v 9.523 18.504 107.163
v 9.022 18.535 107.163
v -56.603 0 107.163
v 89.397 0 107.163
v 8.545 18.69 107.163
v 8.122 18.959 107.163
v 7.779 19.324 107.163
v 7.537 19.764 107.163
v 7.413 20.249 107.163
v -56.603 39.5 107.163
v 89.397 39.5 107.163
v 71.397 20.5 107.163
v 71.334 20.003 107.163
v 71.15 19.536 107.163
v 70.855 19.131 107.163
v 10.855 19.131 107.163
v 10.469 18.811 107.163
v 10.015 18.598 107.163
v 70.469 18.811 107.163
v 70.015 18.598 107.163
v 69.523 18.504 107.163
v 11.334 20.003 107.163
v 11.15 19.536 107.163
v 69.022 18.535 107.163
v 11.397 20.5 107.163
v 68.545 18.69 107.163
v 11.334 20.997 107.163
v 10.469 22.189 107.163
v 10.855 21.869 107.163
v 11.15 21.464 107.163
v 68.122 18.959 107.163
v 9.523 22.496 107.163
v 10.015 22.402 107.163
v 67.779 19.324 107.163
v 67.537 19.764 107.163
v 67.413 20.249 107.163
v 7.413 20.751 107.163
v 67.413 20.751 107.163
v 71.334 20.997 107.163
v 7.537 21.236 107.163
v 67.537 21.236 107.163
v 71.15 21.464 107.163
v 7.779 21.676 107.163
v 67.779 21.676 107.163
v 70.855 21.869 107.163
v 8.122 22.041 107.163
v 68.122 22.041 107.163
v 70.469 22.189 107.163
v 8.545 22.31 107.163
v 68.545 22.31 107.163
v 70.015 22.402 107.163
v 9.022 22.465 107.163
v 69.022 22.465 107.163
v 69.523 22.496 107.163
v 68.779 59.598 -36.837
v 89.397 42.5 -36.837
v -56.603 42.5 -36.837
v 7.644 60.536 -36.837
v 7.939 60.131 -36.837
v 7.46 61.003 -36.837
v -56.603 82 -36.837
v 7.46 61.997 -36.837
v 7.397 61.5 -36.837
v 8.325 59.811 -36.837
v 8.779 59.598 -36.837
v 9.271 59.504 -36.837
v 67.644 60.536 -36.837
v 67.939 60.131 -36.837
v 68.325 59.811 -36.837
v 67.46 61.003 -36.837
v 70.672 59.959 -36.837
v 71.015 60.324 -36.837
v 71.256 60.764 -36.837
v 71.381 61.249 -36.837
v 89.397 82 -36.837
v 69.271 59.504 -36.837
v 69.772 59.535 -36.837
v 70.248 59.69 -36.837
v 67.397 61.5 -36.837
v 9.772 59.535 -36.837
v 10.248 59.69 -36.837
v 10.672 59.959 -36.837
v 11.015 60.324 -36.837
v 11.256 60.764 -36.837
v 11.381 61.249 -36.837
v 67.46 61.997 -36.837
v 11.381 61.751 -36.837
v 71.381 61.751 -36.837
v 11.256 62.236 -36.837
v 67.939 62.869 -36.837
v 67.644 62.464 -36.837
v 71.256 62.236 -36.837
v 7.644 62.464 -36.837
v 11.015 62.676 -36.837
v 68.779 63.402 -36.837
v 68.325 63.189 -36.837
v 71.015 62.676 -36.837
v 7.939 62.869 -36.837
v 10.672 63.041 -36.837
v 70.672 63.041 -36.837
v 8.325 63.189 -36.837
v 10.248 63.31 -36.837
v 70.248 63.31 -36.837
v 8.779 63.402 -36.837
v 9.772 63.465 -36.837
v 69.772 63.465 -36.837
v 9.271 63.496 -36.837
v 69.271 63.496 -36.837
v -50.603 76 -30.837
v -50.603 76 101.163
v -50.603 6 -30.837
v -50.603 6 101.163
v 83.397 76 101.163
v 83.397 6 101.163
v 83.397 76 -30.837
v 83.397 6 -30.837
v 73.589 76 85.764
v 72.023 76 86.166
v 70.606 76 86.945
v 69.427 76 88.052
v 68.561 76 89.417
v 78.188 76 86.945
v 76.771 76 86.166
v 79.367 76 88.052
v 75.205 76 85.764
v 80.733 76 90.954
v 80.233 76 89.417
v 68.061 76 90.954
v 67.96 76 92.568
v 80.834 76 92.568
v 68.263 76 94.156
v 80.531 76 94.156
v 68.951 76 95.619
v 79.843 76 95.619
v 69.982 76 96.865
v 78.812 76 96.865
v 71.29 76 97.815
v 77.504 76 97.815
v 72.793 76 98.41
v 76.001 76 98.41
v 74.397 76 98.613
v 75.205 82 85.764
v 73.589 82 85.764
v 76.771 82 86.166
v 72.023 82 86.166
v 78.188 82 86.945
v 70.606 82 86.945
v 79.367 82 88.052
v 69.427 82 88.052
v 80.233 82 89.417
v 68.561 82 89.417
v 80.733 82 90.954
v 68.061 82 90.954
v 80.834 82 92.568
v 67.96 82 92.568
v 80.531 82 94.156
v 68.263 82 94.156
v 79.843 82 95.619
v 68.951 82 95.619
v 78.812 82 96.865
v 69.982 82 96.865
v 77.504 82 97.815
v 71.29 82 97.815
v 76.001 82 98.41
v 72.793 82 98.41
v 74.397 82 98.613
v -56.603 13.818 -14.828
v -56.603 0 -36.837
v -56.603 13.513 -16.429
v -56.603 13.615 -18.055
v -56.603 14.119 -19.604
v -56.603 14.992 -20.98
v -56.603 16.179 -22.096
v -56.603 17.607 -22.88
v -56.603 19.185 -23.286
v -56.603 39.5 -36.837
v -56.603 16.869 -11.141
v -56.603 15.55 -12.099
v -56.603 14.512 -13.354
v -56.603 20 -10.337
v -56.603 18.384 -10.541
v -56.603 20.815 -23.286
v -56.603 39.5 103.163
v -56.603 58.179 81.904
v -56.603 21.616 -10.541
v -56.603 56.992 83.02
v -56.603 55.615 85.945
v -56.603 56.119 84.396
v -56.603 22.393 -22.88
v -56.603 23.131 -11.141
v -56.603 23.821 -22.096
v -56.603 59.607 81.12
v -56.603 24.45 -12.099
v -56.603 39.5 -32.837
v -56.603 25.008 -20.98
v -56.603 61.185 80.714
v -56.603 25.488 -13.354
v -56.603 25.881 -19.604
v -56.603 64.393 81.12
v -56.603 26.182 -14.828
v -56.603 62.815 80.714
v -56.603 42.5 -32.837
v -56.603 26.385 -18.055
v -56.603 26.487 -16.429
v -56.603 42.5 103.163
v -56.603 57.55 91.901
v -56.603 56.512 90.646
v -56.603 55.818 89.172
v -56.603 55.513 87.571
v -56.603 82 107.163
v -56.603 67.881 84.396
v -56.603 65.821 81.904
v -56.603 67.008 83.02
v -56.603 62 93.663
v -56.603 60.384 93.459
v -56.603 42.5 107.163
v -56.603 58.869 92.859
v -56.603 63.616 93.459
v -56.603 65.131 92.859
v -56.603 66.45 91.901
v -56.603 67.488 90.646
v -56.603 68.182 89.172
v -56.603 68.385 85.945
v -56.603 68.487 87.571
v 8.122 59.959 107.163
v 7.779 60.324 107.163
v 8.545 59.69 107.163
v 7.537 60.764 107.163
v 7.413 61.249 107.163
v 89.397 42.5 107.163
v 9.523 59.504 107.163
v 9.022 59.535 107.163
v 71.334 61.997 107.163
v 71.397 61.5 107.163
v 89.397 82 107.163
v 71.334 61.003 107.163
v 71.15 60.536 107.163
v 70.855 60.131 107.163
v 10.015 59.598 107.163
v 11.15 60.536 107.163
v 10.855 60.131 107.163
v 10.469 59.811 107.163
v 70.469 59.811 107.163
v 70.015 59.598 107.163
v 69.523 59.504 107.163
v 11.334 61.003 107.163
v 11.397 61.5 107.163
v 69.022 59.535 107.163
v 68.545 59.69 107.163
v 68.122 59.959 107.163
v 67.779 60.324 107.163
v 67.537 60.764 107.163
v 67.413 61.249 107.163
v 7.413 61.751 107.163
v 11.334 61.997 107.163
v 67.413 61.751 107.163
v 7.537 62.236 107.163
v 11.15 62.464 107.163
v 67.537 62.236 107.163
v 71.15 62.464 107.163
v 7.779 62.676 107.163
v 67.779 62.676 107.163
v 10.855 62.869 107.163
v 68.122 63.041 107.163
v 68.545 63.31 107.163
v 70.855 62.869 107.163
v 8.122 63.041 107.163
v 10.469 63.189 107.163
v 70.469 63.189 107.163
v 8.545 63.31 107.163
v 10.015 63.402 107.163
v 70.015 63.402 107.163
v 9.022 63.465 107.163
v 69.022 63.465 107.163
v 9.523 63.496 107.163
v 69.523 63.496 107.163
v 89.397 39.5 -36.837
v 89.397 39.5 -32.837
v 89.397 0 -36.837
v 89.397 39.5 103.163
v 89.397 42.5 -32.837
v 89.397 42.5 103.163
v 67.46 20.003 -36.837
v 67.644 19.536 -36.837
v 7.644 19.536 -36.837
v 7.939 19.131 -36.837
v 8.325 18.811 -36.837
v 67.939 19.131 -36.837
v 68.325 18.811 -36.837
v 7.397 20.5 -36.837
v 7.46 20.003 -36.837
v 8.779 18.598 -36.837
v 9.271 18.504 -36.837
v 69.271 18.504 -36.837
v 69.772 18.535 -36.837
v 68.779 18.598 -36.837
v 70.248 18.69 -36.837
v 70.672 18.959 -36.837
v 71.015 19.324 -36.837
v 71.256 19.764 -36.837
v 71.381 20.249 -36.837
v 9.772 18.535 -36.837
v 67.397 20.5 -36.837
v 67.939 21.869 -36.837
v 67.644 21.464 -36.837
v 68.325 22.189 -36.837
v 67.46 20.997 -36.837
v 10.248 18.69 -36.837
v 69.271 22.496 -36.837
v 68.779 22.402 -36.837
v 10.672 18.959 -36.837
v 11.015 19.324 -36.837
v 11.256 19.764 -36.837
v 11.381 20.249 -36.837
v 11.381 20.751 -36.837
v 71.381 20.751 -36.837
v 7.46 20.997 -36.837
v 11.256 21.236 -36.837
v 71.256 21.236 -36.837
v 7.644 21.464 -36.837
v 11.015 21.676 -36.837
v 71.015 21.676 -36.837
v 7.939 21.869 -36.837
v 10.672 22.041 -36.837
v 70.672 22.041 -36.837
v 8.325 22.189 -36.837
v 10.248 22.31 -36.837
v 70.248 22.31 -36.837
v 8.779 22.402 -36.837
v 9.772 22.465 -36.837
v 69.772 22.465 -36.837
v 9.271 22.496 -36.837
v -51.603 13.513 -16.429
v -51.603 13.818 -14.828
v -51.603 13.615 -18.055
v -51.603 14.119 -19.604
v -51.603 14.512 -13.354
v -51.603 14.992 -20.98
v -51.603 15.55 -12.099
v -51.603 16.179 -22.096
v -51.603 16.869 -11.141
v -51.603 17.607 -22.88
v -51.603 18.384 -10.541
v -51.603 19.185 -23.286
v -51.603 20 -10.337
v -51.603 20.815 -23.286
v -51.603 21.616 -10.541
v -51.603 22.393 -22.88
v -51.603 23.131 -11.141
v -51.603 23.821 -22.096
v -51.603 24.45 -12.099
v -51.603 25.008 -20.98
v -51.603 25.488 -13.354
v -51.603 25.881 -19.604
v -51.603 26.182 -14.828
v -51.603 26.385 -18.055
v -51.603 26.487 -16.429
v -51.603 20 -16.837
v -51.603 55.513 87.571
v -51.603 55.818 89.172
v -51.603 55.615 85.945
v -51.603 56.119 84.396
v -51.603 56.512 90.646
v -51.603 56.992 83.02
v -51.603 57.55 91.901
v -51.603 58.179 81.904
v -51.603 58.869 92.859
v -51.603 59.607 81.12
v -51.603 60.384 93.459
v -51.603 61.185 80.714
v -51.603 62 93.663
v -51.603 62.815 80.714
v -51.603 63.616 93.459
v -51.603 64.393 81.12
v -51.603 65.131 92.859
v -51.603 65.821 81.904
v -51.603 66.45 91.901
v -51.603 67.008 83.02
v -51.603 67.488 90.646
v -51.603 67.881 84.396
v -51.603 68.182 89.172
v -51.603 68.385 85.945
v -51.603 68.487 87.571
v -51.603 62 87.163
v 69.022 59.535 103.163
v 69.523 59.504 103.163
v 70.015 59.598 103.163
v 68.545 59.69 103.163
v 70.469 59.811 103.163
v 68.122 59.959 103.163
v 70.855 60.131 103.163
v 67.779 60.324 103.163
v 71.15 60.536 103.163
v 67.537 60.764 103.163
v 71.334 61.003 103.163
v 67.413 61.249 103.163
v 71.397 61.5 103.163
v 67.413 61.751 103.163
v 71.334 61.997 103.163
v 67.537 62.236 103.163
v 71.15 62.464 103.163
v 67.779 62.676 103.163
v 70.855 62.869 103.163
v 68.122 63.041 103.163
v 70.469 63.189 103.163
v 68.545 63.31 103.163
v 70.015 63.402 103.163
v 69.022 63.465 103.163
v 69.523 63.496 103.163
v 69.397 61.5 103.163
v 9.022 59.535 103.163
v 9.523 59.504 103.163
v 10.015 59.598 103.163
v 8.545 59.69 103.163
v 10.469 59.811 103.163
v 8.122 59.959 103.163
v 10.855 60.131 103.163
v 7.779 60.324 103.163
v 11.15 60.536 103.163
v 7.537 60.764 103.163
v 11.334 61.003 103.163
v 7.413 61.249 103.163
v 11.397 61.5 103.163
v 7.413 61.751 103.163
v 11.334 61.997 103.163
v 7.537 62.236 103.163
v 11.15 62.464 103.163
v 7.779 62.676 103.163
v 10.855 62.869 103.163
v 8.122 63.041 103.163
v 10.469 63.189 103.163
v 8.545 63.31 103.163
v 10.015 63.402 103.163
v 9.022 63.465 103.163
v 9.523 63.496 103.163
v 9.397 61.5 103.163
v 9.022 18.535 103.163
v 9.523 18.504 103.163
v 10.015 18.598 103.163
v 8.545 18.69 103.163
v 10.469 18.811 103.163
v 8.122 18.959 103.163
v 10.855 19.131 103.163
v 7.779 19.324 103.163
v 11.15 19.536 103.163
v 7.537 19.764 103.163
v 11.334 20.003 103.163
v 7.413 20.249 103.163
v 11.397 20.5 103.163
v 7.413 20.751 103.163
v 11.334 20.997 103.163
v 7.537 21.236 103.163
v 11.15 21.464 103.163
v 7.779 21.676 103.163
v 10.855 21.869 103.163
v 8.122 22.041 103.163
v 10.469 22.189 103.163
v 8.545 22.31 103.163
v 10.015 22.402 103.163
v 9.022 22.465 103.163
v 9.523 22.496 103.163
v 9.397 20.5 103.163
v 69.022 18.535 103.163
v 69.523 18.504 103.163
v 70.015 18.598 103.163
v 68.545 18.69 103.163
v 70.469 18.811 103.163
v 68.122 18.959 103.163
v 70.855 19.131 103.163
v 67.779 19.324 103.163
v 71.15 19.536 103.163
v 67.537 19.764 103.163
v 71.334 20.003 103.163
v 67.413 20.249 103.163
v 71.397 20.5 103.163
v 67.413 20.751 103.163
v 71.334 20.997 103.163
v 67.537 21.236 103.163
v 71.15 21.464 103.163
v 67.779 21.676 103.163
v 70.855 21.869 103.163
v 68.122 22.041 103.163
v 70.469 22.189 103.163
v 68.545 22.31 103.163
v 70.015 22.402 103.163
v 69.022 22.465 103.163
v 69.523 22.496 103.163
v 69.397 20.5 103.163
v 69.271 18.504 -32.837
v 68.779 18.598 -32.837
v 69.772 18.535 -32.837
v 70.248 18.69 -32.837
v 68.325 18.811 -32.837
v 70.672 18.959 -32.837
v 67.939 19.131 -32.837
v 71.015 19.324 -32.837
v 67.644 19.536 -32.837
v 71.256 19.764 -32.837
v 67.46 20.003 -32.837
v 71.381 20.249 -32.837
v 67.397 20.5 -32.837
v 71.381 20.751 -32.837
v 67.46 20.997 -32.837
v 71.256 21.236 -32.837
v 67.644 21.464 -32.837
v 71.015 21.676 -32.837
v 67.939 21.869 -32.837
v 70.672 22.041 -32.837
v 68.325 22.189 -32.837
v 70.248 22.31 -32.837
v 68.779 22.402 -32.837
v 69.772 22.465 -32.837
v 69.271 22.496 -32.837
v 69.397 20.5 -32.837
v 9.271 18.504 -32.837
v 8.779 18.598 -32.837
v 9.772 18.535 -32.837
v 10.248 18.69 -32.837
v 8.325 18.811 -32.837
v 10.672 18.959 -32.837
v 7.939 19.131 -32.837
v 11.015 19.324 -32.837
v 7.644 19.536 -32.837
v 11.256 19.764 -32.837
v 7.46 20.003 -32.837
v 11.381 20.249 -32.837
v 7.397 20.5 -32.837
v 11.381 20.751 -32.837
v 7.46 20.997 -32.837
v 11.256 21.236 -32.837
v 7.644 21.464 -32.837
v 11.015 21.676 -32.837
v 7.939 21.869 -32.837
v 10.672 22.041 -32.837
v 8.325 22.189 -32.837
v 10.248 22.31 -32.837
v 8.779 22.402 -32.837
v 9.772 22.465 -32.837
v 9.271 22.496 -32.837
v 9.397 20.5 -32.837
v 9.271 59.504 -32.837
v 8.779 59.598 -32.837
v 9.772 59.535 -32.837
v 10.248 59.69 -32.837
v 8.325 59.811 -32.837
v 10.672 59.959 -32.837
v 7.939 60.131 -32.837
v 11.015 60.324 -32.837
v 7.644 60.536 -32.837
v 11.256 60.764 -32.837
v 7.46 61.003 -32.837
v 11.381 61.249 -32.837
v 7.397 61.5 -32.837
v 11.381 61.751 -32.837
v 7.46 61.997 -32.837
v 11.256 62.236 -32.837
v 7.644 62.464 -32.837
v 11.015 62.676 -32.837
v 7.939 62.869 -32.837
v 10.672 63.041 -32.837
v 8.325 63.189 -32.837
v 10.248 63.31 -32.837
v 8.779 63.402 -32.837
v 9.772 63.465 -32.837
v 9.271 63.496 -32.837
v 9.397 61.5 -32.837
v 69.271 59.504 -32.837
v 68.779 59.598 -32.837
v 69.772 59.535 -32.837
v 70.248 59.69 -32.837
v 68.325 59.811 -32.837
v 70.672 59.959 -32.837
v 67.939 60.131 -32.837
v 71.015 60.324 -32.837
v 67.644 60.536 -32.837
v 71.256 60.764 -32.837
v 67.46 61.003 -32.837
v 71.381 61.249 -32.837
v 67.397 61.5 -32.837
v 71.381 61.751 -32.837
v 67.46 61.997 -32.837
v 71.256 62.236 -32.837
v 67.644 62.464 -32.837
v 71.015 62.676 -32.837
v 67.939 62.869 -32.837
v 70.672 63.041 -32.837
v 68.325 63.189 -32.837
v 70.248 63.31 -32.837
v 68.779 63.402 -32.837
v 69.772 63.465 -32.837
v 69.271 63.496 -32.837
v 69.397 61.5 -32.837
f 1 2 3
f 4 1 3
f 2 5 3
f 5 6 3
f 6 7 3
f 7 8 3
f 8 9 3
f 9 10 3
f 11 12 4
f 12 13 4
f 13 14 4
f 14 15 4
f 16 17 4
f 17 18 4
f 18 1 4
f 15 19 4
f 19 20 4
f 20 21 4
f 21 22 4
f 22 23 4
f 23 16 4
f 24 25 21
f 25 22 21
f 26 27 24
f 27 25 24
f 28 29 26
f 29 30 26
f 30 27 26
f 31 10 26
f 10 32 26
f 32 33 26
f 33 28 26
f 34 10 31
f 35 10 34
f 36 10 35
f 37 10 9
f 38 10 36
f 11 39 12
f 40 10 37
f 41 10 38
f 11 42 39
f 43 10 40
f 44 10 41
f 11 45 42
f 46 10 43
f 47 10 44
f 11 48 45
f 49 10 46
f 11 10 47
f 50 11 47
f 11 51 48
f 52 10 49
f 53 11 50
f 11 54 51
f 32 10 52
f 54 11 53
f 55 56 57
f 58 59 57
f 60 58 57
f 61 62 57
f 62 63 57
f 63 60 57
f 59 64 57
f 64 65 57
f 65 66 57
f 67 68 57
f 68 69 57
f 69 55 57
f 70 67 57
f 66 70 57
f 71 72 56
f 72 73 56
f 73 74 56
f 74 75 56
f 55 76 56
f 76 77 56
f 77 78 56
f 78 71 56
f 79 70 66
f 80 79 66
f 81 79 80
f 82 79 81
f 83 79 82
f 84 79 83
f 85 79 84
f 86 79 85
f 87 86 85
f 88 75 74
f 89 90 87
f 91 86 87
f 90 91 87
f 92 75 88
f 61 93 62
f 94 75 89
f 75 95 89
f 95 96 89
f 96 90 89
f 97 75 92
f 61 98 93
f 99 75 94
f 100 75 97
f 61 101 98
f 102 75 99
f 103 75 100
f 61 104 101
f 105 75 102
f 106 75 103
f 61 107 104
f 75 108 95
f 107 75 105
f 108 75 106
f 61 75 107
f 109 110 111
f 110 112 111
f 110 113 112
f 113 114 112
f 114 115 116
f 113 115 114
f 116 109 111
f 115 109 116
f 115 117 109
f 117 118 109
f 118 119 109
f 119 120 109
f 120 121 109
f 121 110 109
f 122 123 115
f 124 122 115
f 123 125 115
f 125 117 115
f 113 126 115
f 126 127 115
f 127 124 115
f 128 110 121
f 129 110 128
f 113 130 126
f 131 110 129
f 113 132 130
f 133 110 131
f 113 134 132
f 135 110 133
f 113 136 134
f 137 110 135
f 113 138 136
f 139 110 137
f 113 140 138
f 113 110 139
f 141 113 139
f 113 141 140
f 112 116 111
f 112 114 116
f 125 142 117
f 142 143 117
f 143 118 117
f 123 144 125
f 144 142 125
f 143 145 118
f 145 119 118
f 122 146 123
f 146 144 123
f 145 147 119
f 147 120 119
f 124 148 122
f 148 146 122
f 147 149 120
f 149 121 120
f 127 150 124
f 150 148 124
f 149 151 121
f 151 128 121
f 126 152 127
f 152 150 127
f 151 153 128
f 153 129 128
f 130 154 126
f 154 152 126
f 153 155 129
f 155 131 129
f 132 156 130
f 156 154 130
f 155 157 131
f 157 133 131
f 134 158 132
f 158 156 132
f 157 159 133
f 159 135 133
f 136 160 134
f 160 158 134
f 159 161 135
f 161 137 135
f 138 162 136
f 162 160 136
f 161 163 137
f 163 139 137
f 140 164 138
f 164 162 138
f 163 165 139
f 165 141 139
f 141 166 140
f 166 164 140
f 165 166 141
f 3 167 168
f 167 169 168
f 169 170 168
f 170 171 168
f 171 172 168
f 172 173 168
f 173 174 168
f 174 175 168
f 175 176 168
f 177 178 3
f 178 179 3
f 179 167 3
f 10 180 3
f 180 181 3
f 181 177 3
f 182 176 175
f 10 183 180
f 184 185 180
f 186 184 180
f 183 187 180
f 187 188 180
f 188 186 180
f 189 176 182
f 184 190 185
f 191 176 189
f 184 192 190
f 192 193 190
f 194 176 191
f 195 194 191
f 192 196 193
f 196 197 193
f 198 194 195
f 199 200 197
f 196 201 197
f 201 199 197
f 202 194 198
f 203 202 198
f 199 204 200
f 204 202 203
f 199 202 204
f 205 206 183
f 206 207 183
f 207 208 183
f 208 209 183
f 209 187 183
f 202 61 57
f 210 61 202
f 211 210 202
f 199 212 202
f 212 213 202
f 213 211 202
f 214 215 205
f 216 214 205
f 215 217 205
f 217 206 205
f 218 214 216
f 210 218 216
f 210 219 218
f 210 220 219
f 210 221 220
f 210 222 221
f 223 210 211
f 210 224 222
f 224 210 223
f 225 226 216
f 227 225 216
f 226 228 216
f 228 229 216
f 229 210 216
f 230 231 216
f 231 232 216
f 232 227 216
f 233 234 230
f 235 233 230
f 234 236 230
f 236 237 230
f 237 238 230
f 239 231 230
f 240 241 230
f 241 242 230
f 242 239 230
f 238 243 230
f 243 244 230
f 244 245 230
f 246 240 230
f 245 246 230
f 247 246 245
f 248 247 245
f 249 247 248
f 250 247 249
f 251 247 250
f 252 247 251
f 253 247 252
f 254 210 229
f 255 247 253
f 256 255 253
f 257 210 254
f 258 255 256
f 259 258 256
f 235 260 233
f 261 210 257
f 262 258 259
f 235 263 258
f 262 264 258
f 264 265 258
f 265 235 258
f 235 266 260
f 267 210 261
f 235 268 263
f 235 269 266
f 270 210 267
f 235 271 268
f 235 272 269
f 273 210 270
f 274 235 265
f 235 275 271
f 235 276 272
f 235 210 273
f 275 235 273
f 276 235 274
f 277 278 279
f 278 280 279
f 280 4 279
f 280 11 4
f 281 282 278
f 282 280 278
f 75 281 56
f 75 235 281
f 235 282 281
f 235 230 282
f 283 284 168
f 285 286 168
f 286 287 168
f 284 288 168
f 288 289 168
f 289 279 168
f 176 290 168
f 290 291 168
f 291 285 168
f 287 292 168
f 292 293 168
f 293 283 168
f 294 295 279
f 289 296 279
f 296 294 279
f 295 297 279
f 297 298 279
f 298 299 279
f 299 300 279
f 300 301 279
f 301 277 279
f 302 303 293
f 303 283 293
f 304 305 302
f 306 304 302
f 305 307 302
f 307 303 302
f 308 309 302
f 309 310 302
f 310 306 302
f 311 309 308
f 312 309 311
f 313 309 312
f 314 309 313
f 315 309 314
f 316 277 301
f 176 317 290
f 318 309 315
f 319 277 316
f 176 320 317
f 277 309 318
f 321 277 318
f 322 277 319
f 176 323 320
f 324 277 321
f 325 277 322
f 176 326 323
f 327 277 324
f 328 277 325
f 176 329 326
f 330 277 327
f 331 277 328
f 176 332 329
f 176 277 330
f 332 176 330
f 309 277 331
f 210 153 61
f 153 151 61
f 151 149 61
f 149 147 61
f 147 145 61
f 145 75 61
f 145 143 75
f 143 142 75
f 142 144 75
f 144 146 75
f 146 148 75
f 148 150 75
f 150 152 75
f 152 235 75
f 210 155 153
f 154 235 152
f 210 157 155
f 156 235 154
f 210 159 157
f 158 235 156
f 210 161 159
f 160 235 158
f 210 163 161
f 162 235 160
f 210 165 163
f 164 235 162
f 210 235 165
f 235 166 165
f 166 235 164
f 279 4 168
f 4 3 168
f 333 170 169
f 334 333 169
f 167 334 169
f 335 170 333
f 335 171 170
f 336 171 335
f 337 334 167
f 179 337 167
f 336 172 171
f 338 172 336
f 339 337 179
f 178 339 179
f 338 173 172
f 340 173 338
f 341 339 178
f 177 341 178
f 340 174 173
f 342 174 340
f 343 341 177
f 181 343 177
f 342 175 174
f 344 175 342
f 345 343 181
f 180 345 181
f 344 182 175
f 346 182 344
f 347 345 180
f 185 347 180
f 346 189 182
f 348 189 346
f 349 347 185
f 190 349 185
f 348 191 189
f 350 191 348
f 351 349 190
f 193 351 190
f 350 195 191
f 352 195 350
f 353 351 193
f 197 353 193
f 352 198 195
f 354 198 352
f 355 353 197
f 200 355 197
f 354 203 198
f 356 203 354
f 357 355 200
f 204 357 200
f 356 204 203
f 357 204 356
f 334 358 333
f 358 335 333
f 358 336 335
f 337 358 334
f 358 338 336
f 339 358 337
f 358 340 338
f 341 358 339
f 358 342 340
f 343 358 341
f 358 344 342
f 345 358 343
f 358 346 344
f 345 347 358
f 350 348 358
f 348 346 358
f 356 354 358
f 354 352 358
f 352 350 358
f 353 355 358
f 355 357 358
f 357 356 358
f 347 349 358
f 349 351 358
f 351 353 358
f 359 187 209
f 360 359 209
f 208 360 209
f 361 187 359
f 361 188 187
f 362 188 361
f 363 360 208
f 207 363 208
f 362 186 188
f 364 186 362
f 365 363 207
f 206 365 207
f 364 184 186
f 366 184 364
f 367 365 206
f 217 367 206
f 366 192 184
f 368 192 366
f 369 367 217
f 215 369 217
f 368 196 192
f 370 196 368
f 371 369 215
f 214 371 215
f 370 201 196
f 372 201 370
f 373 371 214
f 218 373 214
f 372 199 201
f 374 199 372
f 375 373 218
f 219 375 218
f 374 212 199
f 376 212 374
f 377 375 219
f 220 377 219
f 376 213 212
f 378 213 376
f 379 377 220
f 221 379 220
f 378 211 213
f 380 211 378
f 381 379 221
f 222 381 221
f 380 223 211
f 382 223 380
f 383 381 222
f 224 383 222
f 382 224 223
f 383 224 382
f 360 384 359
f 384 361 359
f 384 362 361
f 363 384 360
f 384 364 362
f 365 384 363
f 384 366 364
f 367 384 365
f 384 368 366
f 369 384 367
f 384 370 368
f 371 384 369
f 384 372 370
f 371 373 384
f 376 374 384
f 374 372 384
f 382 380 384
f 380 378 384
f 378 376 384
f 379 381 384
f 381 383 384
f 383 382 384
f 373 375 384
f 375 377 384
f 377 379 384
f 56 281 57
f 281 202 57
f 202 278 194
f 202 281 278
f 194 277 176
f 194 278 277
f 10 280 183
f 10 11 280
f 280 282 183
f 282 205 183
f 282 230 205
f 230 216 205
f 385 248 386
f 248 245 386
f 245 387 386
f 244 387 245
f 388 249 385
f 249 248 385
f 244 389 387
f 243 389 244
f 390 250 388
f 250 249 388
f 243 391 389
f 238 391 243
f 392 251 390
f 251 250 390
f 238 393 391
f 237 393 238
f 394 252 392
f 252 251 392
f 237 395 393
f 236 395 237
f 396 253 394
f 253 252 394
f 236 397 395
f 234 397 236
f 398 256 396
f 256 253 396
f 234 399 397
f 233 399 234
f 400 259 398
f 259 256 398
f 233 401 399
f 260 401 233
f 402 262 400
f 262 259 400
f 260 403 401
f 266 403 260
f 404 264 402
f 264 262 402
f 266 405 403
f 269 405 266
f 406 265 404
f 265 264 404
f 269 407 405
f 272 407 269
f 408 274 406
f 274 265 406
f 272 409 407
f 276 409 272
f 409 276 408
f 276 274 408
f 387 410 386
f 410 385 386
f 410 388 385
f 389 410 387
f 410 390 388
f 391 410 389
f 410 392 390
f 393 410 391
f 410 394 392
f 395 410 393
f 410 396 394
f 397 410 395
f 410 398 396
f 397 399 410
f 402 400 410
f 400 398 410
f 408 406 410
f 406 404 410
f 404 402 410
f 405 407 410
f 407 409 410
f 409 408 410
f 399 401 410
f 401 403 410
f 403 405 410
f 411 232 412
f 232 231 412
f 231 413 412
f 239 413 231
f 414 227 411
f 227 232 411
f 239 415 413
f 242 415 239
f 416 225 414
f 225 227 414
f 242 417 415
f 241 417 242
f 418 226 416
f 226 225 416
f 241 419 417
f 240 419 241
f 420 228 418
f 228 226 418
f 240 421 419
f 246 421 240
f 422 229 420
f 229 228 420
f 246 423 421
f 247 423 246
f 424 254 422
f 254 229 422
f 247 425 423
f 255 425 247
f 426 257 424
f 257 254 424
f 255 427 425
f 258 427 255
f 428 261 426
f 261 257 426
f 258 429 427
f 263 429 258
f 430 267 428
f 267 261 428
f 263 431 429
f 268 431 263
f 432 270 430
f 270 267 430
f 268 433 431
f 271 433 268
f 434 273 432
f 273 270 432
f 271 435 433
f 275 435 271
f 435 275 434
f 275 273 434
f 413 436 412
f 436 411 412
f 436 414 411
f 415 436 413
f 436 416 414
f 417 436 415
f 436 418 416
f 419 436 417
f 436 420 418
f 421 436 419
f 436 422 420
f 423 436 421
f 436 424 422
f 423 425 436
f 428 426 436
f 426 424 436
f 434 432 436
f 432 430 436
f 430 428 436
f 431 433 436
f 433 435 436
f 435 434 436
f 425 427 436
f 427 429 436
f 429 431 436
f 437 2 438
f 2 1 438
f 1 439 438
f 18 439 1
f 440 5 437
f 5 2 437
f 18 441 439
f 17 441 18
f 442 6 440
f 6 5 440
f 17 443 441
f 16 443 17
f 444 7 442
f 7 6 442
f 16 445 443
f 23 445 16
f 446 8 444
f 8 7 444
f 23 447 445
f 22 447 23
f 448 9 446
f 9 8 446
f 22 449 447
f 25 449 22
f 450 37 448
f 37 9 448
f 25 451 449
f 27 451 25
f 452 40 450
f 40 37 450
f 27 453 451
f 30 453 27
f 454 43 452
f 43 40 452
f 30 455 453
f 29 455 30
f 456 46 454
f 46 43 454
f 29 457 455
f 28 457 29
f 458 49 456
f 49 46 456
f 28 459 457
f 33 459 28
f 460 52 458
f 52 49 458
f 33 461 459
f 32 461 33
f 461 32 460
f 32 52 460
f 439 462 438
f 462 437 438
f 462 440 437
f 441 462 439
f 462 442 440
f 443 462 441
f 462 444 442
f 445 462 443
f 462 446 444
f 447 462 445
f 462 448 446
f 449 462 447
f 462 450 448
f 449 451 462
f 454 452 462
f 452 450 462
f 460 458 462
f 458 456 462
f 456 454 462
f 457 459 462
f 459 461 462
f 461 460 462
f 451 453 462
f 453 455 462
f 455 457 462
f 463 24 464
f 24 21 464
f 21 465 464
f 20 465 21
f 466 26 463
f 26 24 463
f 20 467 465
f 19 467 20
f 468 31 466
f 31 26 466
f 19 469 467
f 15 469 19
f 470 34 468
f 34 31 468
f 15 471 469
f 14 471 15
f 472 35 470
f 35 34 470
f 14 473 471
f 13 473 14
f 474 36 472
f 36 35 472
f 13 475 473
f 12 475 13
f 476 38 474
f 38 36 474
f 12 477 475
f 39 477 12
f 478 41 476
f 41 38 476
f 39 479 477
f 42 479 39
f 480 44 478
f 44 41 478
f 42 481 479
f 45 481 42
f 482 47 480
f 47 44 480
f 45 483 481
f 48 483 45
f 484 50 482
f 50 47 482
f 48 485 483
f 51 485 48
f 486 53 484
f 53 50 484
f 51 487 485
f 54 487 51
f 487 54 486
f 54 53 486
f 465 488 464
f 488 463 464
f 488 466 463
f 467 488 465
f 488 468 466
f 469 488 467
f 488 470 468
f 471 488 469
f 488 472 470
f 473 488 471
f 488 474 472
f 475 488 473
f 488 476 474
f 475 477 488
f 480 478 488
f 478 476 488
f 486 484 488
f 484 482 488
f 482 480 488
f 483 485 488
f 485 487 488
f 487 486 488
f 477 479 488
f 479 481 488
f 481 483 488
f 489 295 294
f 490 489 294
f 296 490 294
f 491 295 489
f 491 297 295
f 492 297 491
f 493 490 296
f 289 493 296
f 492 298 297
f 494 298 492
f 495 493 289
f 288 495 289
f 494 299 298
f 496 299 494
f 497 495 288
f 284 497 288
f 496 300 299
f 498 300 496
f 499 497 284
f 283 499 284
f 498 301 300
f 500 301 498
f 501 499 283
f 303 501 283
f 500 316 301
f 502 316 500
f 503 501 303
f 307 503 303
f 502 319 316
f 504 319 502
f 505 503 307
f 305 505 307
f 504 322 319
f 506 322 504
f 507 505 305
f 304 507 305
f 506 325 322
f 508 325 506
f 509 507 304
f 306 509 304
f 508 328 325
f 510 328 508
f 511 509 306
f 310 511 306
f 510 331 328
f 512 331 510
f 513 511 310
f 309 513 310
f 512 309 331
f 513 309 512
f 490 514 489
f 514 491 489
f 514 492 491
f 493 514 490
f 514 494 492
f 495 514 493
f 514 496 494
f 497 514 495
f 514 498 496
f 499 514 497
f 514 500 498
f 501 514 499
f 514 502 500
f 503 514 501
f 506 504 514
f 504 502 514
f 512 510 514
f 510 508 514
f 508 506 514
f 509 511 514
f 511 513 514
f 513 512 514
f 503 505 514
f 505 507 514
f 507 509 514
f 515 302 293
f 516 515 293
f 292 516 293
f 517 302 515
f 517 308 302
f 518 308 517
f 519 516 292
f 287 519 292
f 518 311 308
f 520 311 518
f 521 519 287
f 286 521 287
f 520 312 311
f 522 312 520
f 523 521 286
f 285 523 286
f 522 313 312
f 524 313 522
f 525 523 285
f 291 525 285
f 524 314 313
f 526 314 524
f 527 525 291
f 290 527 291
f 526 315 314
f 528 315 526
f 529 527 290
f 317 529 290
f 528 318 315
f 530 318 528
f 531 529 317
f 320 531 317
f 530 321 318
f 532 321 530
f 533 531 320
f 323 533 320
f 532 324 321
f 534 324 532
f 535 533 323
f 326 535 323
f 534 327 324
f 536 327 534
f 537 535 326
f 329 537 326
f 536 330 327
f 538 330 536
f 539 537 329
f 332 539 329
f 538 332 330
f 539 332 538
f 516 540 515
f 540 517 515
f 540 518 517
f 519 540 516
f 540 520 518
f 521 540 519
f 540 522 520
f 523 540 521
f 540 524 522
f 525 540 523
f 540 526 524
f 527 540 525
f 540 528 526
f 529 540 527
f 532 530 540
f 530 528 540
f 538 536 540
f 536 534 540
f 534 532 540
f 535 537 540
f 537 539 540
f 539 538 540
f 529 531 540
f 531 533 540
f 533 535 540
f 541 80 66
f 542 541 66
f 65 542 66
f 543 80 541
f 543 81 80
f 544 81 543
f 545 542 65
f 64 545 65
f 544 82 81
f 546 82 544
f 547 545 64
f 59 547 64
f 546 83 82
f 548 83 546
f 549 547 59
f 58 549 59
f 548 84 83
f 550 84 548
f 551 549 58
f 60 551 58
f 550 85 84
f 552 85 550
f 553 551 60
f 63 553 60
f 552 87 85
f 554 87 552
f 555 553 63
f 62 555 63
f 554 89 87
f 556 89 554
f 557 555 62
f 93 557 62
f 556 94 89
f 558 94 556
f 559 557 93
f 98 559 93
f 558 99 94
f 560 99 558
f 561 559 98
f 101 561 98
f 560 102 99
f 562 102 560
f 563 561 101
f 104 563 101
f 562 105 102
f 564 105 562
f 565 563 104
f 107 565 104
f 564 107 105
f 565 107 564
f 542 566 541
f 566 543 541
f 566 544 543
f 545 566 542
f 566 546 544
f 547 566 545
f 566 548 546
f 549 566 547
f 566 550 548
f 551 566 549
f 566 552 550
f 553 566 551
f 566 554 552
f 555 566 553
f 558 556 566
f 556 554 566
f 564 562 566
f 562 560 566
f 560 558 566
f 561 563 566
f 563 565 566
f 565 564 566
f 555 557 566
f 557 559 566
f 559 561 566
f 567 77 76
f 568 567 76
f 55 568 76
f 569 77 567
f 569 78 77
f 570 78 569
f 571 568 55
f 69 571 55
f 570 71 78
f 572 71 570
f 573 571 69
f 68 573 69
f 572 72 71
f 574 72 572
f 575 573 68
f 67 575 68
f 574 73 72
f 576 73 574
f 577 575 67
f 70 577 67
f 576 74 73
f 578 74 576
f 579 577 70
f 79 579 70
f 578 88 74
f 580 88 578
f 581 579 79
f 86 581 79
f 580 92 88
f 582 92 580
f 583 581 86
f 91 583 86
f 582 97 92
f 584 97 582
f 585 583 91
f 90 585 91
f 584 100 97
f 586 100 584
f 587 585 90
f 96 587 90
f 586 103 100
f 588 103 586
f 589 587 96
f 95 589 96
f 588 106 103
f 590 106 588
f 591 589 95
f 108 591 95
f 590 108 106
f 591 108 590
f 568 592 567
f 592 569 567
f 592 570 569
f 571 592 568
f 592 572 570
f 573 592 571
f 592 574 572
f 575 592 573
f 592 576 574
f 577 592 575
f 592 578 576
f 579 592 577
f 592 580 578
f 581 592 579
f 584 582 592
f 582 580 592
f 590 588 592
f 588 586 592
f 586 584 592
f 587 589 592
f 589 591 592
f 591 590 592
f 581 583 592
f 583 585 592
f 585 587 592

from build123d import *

# Parameters (mm, degrees)
SKETCH1_W           = 146
SKETCH1_H           = 144
BOSS_EXTRUDE1_DEPTH = 82
SHELL1_T            = 6
SKETCH2_R           = 6.45
CUT_EXTRUDE1_DEPTH  = 10
SKETCH3_R           = 6.5
CUT_EXTRUDE2_DEPTH  = 5
SKETCH4_W           = 4
SKETCH4_H           = 3
CUT_EXTRUDE3_DEPTH  = 199.806250042
SKETCH5_R           = 2
CUT_EXTRUDE4_DEPTH  = 4
CUT_EXTRUDE5_START  = -4
SKETCH6_R           = 2
CUT_EXTRUDE5_DEPTH  = 4


with BuildPart() as part:
    # Sketch1 → Boss-Extrude1 (new body)
    with BuildSketch(Plane(origin=(0, 0, 0), x_dir=(1, 0, 0), z_dir=(0, 1, 0))):
        with Locations((16.396923077, -35.163076923)):
            Rectangle(SKETCH1_W, SKETCH1_H)
    extrude(amount=BOSS_EXTRUDE1_DEPTH)

    # Shell1 (no face opened: a closed hollow body)
    add(offset(amount=-SHELL1_T, mode=Mode.PRIVATE), mode=Mode.SUBTRACT)

    # Sketch2 → Cut-Extrude1 (cut)
    with BuildSketch(Plane(origin=(0, 82, 0), x_dir=(1, 0, 0), z_dir=(0, 1, 0))):
        with Locations(Location((74.396923077, -92.163076923, 0), (0, 0, 270))):
            Circle(SKETCH2_R)
    extrude(amount=-CUT_EXTRUDE1_DEPTH, mode=Mode.SUBTRACT)

    # Sketch3 → Cut-Extrude2 (cut)
    with BuildSketch(Plane.ZY.offset(56.603076923)):
        with Locations((87.163076923, 62)):
            Circle(SKETCH3_R)
        with Locations((-16.836923077, 20)):
            Circle(SKETCH3_R)
    extrude(amount=-CUT_EXTRUDE2_DEPTH, mode=Mode.SUBTRACT)

    # Sketch4 → Cut-Extrude3 (cut, through all)
    with BuildSketch(Plane.ZY.offset(56.603076923)):
        with Locations((-34.836923077, 41)):
            Rectangle(SKETCH4_W, SKETCH4_H)
        with Locations((105.163076923, 41)):
            Rectangle(SKETCH4_W, SKETCH4_H)
    extrude(amount=-CUT_EXTRUDE3_DEPTH, mode=Mode.SUBTRACT)

    # Sketch5 → Cut-Extrude4 (cut)
    with BuildSketch(Plane.XY.offset(107.163076923)):
        with Locations((69.396923077, 61.5)):
            Circle(SKETCH5_R)
        with Locations((9.396923077, 61.5)):
            Circle(SKETCH5_R)
        with Locations((9.396923077, 20.5)):
            Circle(SKETCH5_R)
        with Locations((69.396923077, 20.5)):
            Circle(SKETCH5_R)
    extrude(amount=-CUT_EXTRUDE4_DEPTH, mode=Mode.SUBTRACT)

    # Sketch6 → Cut-Extrude5 (cut)
    with BuildSketch(Plane(origin=(0, 0, -36.836923077), x_dir=(-1, 0, 0), z_dir=(0, 0, -1)).offset(CUT_EXTRUDE5_START)):
        with Locations(Location((-9.396923077, 61.5, 0), (0, 0, 180))):
            Circle(SKETCH6_R)
        with Locations(Location((-69.396923077, 61.5, 0), (0, 0, 180))):
            Circle(SKETCH6_R)
        with Locations(Location((-69.396923077, 20.5, 0), (0, 0, 180))):
            Circle(SKETCH6_R)
        with Locations(Location((-9.396923077, 20.5, 0), (0, 0, 180))):
            Circle(SKETCH6_R)
    extrude(amount=CUT_EXTRUDE5_DEPTH, mode=Mode.SUBTRACT)


solid = part.part
